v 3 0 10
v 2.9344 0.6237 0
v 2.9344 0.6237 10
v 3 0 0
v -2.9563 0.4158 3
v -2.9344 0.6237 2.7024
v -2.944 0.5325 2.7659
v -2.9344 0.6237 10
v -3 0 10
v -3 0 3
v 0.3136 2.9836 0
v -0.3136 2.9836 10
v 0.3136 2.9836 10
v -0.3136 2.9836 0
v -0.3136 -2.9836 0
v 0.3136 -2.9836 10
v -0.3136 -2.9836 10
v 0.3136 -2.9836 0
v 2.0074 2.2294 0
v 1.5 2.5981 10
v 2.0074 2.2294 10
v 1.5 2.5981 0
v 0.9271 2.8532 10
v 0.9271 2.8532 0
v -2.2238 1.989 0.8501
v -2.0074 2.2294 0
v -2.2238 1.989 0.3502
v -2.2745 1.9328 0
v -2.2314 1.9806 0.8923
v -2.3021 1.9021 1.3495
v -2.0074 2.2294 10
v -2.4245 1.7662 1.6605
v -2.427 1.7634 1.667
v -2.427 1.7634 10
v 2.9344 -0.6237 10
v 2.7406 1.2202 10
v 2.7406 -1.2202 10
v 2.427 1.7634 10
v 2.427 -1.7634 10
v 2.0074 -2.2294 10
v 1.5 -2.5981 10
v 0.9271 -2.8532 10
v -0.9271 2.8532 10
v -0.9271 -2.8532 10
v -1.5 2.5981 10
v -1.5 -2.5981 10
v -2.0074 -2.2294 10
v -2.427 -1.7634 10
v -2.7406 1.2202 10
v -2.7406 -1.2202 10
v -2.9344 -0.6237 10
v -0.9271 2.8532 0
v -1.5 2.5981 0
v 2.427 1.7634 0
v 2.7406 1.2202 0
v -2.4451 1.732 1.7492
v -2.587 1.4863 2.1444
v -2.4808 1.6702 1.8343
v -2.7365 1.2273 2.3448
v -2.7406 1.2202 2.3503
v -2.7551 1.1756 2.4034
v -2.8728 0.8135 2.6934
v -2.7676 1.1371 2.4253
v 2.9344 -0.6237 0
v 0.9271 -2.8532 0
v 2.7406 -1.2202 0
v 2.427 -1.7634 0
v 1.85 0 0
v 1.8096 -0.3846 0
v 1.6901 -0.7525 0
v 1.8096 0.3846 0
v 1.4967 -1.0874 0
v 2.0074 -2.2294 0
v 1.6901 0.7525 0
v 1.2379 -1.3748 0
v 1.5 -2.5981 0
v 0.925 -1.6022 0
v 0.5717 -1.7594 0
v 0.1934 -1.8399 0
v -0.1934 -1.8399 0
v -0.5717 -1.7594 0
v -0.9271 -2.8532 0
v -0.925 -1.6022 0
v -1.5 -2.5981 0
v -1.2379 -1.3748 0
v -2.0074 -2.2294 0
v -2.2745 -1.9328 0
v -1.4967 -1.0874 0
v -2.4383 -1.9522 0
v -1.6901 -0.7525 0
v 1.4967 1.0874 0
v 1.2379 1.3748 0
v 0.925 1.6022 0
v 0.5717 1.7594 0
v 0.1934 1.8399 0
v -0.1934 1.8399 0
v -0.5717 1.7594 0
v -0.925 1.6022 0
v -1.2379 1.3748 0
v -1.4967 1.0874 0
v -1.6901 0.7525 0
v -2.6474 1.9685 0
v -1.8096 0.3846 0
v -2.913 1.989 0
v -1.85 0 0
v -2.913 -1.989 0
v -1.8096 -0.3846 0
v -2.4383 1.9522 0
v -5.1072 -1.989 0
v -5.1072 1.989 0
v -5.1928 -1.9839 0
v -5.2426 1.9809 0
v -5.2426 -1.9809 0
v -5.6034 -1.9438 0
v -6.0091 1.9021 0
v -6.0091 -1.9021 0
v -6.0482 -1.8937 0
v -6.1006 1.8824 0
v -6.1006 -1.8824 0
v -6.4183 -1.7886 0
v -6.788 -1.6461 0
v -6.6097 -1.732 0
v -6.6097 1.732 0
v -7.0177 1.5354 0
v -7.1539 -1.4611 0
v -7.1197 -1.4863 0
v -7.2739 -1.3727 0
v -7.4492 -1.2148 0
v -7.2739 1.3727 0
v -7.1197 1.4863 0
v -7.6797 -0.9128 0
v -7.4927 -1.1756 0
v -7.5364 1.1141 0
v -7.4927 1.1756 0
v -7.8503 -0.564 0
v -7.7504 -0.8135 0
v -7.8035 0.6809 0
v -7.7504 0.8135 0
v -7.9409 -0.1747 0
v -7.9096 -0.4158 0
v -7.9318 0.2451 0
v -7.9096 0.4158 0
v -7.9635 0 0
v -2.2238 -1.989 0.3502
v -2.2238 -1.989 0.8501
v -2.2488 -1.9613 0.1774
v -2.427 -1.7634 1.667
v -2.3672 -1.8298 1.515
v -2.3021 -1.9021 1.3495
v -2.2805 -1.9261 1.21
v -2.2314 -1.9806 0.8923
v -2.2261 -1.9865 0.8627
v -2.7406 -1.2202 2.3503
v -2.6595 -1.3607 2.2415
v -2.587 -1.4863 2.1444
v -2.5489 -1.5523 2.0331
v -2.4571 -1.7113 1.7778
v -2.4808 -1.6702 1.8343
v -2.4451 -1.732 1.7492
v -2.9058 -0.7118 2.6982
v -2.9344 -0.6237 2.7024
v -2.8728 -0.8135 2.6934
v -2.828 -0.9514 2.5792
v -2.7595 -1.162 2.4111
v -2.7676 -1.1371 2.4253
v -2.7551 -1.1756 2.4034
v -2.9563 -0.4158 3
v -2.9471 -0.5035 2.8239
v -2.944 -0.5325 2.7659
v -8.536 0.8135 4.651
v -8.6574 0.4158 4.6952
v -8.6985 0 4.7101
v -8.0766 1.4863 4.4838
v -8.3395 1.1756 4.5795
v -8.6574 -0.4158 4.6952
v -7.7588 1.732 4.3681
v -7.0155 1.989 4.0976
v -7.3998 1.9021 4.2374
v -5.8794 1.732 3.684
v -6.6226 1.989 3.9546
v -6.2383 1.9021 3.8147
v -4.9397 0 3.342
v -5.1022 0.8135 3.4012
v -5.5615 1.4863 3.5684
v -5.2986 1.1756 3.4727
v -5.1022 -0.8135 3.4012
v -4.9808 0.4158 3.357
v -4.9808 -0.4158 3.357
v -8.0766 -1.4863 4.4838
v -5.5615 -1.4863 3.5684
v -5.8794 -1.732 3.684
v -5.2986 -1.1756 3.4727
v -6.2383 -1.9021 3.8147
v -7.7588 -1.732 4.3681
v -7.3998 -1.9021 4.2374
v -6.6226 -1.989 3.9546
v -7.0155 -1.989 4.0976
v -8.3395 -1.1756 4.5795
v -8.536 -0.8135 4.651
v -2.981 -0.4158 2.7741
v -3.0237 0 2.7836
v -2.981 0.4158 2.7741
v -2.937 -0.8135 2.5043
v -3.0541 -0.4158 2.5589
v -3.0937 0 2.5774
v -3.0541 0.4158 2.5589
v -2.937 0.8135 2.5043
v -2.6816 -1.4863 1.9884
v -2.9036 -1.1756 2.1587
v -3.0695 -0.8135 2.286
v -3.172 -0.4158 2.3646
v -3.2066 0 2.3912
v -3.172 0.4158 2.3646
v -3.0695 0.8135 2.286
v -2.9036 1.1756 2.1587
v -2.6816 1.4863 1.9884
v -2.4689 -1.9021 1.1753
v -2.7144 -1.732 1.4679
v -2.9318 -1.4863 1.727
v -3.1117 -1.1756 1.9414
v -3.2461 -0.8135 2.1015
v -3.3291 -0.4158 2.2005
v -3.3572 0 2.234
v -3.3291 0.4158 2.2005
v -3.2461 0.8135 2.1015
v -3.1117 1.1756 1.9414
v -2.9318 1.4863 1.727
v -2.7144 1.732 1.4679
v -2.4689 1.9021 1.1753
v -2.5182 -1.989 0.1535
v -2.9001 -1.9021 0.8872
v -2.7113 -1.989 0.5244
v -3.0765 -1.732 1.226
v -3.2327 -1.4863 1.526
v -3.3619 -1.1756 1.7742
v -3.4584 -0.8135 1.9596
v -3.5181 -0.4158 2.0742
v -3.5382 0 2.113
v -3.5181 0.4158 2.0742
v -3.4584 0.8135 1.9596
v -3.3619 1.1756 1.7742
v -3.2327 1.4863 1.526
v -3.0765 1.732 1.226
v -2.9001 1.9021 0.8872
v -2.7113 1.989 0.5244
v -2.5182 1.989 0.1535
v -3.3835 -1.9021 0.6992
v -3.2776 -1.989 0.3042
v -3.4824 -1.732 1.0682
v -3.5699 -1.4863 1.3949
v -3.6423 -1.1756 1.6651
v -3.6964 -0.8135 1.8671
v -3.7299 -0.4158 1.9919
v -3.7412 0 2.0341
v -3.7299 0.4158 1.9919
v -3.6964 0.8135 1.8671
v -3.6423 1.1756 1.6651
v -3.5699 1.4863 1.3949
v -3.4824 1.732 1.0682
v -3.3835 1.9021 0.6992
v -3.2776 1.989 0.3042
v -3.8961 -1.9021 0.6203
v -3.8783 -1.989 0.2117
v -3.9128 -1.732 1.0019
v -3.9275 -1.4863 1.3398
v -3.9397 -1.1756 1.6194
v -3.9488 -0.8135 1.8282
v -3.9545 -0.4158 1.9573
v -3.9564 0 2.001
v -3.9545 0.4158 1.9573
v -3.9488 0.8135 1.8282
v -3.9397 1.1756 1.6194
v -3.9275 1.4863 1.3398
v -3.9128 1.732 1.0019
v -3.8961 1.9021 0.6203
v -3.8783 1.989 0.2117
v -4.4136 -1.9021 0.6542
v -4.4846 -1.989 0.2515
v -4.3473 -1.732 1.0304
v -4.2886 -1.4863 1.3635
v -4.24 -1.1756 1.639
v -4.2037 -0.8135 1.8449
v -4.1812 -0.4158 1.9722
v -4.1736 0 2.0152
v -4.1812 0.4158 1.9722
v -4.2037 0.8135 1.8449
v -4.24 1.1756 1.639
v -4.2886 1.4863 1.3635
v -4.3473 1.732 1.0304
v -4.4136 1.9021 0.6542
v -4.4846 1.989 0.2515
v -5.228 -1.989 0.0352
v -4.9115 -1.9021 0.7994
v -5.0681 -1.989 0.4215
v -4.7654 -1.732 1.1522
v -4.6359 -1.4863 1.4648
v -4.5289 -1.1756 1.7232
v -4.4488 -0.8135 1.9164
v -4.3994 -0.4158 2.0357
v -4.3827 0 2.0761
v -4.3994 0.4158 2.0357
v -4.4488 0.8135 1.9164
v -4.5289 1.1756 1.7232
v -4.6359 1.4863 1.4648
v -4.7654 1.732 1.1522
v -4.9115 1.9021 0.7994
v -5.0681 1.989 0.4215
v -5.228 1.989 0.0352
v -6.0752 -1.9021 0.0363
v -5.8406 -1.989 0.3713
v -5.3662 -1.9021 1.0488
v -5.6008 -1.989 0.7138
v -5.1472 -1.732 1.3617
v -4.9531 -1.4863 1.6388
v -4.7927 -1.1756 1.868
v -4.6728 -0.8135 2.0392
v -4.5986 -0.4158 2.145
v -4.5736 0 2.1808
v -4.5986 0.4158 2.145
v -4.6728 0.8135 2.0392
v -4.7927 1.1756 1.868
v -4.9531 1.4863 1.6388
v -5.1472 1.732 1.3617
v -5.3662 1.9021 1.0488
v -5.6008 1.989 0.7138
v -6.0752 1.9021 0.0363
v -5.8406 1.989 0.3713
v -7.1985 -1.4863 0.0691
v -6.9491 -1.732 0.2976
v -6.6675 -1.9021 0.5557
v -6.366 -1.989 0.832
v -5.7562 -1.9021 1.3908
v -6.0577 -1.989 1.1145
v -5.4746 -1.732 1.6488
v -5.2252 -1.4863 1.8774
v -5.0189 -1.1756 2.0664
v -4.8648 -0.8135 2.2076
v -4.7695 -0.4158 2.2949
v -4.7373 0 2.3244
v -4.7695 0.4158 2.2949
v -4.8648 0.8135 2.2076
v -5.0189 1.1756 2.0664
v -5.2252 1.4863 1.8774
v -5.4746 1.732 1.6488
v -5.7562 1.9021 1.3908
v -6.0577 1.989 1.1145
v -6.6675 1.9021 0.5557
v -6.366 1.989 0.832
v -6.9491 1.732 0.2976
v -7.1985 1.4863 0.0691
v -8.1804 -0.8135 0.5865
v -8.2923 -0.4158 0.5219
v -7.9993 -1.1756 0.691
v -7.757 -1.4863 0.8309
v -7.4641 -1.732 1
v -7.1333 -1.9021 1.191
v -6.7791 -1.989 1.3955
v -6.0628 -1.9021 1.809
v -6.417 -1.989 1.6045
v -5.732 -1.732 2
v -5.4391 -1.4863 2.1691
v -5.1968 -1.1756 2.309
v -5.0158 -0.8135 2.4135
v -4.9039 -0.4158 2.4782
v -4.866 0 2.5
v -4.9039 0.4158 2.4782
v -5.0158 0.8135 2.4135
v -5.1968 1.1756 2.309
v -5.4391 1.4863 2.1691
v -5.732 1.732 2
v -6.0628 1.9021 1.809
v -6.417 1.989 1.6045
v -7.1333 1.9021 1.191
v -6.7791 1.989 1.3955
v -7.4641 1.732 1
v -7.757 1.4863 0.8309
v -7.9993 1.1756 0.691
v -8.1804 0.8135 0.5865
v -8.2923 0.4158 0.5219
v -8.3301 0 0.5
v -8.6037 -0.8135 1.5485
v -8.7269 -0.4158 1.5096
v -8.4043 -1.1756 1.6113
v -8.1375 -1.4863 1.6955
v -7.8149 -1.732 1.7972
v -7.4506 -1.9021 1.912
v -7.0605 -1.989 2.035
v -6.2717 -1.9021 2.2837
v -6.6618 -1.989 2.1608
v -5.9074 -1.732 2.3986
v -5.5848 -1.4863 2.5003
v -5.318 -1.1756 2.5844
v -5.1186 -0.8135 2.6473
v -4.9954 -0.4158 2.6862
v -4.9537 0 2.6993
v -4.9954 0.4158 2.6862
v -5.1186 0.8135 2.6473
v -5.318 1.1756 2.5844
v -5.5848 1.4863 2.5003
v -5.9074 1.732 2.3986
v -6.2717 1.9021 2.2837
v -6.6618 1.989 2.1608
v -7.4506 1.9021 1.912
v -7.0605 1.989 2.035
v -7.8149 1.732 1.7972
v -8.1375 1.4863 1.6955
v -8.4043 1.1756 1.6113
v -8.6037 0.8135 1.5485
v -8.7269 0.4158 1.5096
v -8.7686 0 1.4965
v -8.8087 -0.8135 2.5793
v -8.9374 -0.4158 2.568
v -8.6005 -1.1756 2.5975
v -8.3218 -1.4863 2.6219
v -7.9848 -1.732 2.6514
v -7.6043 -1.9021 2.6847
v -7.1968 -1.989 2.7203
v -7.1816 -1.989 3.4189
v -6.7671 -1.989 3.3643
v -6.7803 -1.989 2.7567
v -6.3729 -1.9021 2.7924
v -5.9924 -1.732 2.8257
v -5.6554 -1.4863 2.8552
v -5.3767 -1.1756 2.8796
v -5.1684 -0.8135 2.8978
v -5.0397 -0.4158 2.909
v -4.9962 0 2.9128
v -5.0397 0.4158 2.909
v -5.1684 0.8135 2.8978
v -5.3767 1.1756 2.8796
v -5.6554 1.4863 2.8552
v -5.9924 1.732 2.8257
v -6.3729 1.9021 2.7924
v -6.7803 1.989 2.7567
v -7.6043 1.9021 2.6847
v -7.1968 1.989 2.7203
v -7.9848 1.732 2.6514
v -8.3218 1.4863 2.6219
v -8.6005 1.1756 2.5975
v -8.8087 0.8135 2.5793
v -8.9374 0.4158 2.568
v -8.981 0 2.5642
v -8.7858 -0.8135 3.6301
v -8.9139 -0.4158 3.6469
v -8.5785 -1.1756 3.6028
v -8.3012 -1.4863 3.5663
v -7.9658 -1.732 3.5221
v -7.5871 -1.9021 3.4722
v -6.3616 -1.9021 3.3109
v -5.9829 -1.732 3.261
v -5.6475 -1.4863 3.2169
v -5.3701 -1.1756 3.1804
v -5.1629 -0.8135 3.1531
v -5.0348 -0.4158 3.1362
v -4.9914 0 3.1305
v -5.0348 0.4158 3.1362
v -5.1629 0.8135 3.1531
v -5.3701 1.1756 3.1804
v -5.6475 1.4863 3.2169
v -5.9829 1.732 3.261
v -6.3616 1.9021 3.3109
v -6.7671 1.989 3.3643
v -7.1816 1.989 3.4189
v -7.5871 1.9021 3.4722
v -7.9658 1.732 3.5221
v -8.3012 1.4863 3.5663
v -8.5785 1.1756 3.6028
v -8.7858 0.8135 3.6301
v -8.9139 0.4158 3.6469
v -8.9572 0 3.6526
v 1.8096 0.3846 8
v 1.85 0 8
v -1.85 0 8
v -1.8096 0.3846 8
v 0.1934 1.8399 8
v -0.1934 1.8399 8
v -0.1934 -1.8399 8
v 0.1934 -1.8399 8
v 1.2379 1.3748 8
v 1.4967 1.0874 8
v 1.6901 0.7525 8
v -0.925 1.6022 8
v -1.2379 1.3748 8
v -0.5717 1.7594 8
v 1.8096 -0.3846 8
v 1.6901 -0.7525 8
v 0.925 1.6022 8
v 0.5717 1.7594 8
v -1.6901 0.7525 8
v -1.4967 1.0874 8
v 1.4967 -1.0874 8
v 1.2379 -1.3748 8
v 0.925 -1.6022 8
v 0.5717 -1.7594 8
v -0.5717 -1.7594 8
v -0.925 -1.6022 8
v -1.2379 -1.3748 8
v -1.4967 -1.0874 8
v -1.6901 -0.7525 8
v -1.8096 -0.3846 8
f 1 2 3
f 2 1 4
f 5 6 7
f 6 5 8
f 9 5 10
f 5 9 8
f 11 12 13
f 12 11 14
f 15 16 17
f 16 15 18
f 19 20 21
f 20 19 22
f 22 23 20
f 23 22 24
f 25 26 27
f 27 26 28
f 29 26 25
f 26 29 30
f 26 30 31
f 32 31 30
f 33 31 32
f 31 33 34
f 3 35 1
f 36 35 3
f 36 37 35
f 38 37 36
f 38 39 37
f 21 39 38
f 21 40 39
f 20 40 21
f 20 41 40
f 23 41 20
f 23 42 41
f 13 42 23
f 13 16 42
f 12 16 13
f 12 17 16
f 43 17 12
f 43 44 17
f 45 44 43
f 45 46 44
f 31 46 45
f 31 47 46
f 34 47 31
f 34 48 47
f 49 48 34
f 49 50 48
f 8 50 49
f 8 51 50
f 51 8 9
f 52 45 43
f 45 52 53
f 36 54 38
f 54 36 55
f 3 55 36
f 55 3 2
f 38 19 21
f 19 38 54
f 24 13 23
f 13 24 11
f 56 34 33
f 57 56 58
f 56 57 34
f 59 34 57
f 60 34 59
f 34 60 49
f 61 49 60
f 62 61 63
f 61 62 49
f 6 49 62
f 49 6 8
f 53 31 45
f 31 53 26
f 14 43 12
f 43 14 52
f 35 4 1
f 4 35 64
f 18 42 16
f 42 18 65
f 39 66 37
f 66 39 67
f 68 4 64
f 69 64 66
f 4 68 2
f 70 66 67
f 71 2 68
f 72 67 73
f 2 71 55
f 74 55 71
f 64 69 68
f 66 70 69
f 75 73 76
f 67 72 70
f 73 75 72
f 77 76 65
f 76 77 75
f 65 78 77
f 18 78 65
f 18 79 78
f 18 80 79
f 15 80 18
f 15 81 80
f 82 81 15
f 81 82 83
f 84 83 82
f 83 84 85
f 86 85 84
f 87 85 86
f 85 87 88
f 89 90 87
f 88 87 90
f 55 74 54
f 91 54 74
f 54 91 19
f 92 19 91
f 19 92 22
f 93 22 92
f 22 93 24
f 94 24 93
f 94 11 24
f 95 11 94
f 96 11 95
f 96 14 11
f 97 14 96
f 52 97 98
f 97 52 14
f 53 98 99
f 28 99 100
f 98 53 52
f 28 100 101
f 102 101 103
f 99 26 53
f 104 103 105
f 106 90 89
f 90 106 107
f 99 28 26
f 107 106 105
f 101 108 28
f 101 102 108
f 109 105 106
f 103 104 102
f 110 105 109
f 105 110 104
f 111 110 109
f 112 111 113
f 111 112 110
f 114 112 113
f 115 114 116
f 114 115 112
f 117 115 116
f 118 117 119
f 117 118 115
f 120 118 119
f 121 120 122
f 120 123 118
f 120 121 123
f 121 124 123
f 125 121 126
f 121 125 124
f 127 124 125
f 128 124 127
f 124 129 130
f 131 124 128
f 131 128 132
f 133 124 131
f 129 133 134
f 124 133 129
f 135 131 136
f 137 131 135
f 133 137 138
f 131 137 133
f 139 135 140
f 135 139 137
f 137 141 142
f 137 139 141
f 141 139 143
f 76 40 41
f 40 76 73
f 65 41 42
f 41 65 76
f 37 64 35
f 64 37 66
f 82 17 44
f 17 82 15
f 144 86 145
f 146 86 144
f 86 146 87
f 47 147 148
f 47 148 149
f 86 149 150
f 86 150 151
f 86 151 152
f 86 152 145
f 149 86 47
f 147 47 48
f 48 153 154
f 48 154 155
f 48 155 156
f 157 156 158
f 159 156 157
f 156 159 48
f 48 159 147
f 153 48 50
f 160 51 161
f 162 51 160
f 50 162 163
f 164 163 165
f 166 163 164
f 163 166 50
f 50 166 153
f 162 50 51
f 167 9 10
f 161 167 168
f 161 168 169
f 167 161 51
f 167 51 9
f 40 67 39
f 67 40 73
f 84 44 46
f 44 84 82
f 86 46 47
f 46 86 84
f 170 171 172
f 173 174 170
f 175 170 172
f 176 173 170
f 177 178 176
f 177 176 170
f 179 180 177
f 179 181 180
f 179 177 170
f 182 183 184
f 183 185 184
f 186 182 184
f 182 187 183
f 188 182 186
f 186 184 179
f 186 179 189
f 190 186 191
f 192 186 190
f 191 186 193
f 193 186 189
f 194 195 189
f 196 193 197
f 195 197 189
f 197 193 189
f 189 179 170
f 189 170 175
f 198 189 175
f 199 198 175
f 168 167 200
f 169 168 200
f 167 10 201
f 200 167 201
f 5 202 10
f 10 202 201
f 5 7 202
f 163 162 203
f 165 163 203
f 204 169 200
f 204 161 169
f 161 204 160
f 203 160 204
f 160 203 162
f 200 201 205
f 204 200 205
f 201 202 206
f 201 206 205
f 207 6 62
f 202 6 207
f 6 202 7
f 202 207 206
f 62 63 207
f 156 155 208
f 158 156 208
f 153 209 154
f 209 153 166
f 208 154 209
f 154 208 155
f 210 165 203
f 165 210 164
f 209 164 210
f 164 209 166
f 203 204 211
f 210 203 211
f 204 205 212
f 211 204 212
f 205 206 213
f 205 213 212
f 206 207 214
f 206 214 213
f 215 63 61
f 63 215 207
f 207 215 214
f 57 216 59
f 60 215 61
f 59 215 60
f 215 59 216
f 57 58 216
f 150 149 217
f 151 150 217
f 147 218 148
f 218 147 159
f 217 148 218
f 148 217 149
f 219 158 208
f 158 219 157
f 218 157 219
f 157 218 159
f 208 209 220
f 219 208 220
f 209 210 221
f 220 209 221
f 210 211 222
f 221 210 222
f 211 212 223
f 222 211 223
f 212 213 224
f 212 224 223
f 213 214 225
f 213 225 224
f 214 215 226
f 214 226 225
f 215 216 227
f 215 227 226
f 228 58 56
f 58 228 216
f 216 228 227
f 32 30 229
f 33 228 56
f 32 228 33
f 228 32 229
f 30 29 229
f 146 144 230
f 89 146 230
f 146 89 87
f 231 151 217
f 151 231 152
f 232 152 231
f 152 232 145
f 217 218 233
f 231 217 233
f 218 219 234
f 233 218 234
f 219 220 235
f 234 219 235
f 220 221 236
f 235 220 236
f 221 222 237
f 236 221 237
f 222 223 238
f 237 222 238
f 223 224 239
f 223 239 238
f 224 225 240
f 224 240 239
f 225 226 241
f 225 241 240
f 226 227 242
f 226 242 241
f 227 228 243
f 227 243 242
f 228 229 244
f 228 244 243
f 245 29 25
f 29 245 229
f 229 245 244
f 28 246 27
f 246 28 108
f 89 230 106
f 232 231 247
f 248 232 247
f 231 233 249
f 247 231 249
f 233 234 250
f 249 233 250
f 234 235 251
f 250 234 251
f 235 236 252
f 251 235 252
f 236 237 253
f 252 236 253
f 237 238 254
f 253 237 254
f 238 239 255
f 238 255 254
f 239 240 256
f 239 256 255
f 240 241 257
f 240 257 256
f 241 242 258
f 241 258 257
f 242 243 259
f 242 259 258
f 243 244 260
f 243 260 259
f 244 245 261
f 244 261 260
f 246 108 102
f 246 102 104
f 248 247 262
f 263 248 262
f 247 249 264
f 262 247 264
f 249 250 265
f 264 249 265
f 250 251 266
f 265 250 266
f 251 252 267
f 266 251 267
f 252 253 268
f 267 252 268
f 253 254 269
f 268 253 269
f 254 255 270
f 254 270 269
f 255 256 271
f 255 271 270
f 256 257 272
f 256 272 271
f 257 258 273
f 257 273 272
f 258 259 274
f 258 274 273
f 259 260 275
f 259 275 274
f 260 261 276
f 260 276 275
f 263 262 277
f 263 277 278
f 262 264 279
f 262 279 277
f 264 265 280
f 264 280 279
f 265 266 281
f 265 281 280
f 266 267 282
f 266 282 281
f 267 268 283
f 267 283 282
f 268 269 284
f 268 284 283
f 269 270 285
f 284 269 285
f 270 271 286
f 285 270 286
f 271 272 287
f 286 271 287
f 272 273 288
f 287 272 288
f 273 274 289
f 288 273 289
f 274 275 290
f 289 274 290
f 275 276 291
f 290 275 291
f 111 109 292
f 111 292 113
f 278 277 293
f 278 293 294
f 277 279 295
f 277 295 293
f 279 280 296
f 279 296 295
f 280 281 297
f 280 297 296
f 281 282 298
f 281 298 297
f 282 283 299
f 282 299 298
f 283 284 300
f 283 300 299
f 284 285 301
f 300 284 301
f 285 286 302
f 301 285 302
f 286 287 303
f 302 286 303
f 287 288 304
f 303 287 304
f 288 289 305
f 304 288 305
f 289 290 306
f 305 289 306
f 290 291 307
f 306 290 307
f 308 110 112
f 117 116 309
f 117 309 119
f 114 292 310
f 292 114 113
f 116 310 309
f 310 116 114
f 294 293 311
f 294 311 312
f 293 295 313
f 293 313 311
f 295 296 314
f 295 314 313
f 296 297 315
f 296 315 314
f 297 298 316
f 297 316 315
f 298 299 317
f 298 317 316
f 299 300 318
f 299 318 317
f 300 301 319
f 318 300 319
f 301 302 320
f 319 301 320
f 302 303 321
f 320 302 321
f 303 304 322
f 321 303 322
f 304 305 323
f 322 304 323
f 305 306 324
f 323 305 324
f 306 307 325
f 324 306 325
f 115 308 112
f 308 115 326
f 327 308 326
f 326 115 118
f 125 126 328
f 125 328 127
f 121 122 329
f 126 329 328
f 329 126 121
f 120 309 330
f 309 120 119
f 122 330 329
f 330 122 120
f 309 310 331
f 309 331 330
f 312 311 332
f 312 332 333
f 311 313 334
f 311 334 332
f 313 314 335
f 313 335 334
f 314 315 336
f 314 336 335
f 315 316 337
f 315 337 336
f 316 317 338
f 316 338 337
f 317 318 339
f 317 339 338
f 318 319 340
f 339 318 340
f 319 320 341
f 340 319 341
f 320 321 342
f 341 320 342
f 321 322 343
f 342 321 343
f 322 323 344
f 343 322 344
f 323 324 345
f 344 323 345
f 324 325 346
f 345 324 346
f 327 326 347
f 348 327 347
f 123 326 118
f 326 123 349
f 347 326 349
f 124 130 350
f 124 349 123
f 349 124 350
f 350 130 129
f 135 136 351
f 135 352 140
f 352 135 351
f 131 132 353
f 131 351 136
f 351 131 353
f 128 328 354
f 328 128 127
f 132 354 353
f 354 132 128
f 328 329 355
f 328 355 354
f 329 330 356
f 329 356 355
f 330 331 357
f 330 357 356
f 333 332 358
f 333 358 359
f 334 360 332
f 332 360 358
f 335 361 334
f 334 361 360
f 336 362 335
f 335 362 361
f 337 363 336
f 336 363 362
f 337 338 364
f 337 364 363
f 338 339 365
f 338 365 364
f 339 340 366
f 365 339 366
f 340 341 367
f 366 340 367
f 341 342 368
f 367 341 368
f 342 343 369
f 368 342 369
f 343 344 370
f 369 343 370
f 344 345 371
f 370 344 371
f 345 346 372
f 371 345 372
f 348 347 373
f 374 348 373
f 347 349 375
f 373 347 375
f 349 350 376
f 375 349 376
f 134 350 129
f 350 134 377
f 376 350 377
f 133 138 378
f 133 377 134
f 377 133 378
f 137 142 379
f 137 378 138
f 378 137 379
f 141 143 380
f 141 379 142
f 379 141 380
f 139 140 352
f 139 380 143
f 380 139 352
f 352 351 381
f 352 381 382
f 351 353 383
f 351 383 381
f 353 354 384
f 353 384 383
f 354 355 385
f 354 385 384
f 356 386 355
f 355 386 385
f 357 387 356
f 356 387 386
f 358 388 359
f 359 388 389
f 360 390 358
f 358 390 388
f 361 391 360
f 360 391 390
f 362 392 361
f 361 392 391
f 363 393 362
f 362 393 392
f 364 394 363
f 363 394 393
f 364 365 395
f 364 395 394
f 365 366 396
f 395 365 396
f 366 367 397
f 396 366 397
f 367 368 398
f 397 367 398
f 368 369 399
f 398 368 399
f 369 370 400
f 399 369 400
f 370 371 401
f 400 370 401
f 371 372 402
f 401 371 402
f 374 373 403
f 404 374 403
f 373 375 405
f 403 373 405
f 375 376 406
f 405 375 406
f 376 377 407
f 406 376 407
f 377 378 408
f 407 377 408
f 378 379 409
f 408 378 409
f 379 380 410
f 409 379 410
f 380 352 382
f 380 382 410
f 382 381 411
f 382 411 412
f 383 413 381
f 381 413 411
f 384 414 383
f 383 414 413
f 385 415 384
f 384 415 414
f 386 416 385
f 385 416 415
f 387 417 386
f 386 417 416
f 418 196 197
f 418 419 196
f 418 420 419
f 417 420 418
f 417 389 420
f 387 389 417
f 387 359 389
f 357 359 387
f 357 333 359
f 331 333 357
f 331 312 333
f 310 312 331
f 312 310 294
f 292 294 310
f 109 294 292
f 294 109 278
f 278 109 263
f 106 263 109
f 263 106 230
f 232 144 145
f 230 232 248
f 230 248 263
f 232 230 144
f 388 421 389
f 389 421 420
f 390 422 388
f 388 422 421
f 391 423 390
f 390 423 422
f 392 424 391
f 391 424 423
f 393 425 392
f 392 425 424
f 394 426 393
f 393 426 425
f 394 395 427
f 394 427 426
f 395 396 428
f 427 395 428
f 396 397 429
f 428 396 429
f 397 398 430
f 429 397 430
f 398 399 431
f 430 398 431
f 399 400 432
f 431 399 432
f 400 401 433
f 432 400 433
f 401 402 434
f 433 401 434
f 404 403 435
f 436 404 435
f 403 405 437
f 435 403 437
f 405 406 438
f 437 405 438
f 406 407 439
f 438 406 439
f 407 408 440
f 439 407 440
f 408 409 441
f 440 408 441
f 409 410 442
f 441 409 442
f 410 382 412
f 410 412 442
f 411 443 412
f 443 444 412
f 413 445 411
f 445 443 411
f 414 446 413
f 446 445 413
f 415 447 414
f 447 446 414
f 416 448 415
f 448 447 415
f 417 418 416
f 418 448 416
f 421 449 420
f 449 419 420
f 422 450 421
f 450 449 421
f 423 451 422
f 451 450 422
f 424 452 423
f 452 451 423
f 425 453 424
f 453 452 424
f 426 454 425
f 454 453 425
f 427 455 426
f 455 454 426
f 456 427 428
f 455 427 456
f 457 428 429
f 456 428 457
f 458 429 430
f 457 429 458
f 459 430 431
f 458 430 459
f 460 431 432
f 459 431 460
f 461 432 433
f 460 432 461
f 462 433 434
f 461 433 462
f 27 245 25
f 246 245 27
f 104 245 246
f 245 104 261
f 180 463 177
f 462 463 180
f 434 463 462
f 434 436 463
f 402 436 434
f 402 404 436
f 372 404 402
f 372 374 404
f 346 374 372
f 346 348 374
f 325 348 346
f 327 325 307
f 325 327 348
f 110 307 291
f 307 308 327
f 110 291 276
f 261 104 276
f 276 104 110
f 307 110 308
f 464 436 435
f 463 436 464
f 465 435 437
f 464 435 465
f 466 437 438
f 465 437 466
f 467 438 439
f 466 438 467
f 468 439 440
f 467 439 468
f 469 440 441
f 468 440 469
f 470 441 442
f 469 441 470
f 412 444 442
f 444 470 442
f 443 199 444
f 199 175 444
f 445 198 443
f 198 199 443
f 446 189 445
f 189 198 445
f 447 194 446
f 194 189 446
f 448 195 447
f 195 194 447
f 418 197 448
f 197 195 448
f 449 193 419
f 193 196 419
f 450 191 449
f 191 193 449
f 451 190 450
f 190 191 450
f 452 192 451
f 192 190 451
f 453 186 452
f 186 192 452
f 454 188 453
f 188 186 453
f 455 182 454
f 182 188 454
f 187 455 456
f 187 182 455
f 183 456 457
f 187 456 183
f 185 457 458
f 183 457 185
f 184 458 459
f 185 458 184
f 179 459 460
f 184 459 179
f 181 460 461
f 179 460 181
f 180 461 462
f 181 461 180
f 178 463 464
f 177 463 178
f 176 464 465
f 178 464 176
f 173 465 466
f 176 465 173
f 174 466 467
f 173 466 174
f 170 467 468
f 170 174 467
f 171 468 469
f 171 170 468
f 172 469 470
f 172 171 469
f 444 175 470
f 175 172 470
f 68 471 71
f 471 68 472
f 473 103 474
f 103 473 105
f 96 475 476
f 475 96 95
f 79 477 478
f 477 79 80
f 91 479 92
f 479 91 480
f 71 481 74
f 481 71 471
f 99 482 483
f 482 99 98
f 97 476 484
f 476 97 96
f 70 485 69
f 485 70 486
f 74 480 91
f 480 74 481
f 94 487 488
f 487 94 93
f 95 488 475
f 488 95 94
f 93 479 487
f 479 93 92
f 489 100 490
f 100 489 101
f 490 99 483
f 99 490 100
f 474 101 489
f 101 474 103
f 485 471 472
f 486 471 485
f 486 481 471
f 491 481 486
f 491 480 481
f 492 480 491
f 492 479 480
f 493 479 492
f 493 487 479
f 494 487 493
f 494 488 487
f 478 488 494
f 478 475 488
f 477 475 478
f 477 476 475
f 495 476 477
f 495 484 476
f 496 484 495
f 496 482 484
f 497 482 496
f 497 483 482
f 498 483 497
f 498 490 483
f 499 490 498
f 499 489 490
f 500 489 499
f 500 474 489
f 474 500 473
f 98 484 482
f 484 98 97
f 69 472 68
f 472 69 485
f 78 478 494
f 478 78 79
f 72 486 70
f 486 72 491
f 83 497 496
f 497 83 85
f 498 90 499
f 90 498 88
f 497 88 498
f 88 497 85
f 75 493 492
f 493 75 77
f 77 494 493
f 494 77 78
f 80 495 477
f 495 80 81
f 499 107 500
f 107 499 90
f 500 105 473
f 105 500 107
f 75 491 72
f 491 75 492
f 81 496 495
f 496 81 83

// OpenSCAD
line_length_tuner_hook();
module line_length_tuner_hook(){
  d = 6;
  opening = 3;
  h = 10;
  $fn = 30;
  difference()
  {
    union(){
      cylinder(d = d, h = h);
      translate([-opening - 1,0,d/2 + opening - 3])
        rotate([-90,0,0])
          rotate_extrude(angle=200)
            translate([opening,0,0])
              circle(d=d-2);
    }
    translate([0,0,-20])
      cube(40, center=true);
    translate([0,0,-1])
    cylinder(d=3.7, h = h - 1);
  }
}
